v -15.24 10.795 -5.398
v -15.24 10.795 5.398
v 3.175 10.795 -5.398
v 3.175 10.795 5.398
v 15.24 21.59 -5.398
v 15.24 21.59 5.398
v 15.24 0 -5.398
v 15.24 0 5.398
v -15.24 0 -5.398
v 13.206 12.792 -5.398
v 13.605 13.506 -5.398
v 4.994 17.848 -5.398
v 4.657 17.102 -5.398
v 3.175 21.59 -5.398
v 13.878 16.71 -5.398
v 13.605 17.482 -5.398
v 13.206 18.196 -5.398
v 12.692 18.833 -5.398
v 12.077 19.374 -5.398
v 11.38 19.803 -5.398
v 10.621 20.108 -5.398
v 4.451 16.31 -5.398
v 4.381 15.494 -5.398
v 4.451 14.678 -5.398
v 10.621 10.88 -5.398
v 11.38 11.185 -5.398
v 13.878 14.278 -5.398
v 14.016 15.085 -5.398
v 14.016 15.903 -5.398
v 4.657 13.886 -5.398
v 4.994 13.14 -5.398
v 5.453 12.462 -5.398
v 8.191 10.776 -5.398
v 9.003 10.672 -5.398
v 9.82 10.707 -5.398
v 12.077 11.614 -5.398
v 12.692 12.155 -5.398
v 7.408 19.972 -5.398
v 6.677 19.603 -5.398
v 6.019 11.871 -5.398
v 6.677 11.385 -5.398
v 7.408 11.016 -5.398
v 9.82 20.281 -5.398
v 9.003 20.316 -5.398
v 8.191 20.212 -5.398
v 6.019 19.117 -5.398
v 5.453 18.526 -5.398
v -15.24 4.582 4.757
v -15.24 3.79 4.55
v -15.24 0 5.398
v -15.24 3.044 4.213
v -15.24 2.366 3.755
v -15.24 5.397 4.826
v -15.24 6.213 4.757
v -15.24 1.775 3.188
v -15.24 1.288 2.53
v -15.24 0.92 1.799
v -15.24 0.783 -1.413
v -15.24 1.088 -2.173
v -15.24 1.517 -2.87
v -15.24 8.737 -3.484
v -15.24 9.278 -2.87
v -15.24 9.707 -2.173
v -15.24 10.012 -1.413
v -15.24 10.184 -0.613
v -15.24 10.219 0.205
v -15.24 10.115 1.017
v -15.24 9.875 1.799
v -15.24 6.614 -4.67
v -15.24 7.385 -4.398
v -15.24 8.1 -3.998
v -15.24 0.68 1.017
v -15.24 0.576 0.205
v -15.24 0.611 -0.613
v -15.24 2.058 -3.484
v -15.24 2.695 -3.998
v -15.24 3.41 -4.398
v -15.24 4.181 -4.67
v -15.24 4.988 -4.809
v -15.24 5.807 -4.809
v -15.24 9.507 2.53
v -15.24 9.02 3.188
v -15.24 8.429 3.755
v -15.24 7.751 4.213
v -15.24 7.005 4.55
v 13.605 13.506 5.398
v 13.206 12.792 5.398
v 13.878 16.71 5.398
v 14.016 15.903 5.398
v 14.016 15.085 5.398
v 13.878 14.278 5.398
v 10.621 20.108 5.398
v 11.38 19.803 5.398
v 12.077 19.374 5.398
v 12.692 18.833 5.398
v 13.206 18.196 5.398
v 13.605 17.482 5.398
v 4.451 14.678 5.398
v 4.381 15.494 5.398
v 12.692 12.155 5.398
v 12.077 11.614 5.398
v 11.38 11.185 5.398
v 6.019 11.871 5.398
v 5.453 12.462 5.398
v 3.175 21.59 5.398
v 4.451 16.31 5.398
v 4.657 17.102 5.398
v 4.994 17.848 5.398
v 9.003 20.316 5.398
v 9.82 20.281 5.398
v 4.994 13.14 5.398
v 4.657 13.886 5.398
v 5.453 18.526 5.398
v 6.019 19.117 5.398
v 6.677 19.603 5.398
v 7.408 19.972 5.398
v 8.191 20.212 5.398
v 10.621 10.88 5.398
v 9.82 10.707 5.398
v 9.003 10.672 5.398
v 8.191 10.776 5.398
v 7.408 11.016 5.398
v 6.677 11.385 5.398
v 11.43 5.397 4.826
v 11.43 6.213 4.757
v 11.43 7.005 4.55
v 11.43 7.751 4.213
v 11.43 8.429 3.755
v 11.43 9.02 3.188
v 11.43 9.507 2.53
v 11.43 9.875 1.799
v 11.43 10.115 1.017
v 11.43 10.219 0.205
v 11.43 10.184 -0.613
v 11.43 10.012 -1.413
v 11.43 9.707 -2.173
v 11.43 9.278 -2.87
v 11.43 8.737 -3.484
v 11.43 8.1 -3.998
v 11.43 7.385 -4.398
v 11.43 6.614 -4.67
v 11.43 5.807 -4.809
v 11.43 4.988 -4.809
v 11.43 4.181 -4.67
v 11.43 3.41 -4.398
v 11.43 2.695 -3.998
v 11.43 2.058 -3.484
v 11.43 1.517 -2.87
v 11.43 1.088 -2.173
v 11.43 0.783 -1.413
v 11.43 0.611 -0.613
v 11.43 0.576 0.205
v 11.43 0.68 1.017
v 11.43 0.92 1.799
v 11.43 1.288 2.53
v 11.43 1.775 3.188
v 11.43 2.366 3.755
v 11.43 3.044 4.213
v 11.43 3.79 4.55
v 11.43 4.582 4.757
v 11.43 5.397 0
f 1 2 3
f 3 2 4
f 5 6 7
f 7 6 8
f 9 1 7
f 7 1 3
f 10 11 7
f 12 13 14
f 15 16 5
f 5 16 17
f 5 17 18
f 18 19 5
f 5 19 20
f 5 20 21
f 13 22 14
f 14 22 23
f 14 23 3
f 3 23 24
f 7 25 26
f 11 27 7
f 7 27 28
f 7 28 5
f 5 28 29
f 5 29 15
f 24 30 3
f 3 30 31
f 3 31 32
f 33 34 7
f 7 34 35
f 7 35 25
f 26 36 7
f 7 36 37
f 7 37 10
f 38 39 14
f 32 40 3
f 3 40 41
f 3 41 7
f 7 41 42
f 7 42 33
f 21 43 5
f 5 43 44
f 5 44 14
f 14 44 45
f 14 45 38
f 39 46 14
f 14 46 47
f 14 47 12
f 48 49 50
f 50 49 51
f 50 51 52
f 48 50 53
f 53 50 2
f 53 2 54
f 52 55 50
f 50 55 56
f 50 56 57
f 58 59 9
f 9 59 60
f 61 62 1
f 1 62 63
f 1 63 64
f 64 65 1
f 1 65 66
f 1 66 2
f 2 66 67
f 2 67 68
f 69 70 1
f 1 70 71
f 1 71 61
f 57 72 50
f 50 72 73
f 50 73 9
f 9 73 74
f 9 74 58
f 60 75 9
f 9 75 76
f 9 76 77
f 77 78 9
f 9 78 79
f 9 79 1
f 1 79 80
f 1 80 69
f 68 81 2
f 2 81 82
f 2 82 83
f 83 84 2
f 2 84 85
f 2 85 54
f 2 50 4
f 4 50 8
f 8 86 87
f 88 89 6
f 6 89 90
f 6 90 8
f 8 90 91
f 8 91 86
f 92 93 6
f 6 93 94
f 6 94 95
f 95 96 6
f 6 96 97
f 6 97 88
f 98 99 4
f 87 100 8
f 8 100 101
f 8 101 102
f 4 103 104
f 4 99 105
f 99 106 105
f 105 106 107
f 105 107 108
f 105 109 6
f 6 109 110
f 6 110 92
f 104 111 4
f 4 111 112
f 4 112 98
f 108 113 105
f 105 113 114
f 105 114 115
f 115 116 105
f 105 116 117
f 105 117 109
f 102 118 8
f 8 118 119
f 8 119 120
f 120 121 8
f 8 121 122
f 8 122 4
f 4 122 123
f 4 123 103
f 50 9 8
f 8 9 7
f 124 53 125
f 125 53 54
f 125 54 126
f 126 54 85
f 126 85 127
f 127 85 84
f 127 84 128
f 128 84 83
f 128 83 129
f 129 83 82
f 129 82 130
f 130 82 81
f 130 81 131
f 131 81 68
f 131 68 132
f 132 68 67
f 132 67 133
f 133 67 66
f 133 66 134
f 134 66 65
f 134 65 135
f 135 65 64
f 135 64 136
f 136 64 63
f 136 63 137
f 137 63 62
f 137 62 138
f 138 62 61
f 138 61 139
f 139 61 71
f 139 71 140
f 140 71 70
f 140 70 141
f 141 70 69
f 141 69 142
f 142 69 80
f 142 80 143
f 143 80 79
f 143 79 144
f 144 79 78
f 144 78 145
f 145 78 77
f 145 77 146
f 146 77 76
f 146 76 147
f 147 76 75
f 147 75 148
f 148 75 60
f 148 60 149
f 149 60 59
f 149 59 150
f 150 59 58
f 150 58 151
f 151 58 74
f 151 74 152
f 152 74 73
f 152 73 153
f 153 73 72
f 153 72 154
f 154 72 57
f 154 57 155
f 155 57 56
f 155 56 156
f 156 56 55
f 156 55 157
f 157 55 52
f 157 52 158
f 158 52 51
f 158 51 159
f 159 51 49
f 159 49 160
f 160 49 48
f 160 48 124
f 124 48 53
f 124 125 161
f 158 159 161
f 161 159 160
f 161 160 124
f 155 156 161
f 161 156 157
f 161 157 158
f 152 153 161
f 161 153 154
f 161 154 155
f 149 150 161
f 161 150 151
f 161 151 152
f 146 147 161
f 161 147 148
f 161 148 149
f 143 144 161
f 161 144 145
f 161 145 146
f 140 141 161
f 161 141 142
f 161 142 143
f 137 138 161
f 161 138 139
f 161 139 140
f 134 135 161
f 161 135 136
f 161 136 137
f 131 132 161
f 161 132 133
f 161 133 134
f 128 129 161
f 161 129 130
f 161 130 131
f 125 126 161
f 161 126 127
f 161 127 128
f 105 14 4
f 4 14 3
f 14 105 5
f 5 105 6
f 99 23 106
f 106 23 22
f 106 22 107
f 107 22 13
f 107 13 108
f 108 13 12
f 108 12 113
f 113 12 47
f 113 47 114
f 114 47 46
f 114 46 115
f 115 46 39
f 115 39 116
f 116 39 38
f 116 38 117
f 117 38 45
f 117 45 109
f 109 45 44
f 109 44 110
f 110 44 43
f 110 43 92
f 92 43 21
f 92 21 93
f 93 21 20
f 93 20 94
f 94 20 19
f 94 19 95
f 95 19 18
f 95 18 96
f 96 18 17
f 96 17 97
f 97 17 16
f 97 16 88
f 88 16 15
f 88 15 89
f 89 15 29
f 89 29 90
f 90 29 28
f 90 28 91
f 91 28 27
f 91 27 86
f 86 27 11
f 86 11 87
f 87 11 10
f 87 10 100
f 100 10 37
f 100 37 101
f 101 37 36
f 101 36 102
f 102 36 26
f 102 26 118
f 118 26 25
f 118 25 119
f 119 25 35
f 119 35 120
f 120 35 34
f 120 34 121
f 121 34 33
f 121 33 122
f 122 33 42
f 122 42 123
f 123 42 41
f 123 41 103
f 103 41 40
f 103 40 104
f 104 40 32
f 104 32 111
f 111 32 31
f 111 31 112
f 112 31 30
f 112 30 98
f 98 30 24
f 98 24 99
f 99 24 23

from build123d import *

# Parameters (mm, degrees)
SKETCH1_W           = 30.48
SKETCH1_H           = 10.795
BOSS_EXTRUDE1_DEPTH = 10.795
SKETCH2_R           = 4.826
CUT_EXTRUDE1_DEPTH  = 26.67
SKETCH3_W           = 12.065
SKETCH3_H           = 10.795
BOSS_EXTRUDE2_DEPTH = 10.795
SKETCH4_R           = 4.826
CUT_EXTRUDE2_DEPTH  = 25.4


with BuildPart() as part:
    # Sketch1 → Boss-Extrude1 (new body)
    with BuildSketch(Plane(origin=(0, 0, 0), x_dir=(1, 0, 0), z_dir=(0, 1, 0))):
        Rectangle(SKETCH1_W, SKETCH1_H)
    extrude(amount=BOSS_EXTRUDE1_DEPTH)

    # Sketch2 → Cut-Extrude1 (cut)
    with BuildSketch(Plane.ZY.offset(15.24)):
        with Locations((0, 5.3975)):
            Circle(SKETCH2_R)
    extrude(amount=-CUT_EXTRUDE1_DEPTH, mode=Mode.SUBTRACT)

    # Sketch3 → Boss-Extrude2 (add)
    with BuildSketch(Plane(origin=(0, 10.795, 0), x_dir=(1, 0, 0), z_dir=(0, 1, 0))):
        with Locations((9.2075, 0)):
            Rectangle(SKETCH3_W, SKETCH3_H)
    extrude(amount=BOSS_EXTRUDE2_DEPTH)

    # Sketch4 → Cut-Extrude2 (cut)
    with BuildSketch(Plane(origin=(0, 0, -5.3975), x_dir=(-1, 0, 0), z_dir=(0, 0, -1))):
        with Locations((-9.2075, 15.494)):
            Circle(SKETCH4_R)
    extrude(amount=-CUT_EXTRUDE2_DEPTH, mode=Mode.SUBTRACT)


solid = part.part
